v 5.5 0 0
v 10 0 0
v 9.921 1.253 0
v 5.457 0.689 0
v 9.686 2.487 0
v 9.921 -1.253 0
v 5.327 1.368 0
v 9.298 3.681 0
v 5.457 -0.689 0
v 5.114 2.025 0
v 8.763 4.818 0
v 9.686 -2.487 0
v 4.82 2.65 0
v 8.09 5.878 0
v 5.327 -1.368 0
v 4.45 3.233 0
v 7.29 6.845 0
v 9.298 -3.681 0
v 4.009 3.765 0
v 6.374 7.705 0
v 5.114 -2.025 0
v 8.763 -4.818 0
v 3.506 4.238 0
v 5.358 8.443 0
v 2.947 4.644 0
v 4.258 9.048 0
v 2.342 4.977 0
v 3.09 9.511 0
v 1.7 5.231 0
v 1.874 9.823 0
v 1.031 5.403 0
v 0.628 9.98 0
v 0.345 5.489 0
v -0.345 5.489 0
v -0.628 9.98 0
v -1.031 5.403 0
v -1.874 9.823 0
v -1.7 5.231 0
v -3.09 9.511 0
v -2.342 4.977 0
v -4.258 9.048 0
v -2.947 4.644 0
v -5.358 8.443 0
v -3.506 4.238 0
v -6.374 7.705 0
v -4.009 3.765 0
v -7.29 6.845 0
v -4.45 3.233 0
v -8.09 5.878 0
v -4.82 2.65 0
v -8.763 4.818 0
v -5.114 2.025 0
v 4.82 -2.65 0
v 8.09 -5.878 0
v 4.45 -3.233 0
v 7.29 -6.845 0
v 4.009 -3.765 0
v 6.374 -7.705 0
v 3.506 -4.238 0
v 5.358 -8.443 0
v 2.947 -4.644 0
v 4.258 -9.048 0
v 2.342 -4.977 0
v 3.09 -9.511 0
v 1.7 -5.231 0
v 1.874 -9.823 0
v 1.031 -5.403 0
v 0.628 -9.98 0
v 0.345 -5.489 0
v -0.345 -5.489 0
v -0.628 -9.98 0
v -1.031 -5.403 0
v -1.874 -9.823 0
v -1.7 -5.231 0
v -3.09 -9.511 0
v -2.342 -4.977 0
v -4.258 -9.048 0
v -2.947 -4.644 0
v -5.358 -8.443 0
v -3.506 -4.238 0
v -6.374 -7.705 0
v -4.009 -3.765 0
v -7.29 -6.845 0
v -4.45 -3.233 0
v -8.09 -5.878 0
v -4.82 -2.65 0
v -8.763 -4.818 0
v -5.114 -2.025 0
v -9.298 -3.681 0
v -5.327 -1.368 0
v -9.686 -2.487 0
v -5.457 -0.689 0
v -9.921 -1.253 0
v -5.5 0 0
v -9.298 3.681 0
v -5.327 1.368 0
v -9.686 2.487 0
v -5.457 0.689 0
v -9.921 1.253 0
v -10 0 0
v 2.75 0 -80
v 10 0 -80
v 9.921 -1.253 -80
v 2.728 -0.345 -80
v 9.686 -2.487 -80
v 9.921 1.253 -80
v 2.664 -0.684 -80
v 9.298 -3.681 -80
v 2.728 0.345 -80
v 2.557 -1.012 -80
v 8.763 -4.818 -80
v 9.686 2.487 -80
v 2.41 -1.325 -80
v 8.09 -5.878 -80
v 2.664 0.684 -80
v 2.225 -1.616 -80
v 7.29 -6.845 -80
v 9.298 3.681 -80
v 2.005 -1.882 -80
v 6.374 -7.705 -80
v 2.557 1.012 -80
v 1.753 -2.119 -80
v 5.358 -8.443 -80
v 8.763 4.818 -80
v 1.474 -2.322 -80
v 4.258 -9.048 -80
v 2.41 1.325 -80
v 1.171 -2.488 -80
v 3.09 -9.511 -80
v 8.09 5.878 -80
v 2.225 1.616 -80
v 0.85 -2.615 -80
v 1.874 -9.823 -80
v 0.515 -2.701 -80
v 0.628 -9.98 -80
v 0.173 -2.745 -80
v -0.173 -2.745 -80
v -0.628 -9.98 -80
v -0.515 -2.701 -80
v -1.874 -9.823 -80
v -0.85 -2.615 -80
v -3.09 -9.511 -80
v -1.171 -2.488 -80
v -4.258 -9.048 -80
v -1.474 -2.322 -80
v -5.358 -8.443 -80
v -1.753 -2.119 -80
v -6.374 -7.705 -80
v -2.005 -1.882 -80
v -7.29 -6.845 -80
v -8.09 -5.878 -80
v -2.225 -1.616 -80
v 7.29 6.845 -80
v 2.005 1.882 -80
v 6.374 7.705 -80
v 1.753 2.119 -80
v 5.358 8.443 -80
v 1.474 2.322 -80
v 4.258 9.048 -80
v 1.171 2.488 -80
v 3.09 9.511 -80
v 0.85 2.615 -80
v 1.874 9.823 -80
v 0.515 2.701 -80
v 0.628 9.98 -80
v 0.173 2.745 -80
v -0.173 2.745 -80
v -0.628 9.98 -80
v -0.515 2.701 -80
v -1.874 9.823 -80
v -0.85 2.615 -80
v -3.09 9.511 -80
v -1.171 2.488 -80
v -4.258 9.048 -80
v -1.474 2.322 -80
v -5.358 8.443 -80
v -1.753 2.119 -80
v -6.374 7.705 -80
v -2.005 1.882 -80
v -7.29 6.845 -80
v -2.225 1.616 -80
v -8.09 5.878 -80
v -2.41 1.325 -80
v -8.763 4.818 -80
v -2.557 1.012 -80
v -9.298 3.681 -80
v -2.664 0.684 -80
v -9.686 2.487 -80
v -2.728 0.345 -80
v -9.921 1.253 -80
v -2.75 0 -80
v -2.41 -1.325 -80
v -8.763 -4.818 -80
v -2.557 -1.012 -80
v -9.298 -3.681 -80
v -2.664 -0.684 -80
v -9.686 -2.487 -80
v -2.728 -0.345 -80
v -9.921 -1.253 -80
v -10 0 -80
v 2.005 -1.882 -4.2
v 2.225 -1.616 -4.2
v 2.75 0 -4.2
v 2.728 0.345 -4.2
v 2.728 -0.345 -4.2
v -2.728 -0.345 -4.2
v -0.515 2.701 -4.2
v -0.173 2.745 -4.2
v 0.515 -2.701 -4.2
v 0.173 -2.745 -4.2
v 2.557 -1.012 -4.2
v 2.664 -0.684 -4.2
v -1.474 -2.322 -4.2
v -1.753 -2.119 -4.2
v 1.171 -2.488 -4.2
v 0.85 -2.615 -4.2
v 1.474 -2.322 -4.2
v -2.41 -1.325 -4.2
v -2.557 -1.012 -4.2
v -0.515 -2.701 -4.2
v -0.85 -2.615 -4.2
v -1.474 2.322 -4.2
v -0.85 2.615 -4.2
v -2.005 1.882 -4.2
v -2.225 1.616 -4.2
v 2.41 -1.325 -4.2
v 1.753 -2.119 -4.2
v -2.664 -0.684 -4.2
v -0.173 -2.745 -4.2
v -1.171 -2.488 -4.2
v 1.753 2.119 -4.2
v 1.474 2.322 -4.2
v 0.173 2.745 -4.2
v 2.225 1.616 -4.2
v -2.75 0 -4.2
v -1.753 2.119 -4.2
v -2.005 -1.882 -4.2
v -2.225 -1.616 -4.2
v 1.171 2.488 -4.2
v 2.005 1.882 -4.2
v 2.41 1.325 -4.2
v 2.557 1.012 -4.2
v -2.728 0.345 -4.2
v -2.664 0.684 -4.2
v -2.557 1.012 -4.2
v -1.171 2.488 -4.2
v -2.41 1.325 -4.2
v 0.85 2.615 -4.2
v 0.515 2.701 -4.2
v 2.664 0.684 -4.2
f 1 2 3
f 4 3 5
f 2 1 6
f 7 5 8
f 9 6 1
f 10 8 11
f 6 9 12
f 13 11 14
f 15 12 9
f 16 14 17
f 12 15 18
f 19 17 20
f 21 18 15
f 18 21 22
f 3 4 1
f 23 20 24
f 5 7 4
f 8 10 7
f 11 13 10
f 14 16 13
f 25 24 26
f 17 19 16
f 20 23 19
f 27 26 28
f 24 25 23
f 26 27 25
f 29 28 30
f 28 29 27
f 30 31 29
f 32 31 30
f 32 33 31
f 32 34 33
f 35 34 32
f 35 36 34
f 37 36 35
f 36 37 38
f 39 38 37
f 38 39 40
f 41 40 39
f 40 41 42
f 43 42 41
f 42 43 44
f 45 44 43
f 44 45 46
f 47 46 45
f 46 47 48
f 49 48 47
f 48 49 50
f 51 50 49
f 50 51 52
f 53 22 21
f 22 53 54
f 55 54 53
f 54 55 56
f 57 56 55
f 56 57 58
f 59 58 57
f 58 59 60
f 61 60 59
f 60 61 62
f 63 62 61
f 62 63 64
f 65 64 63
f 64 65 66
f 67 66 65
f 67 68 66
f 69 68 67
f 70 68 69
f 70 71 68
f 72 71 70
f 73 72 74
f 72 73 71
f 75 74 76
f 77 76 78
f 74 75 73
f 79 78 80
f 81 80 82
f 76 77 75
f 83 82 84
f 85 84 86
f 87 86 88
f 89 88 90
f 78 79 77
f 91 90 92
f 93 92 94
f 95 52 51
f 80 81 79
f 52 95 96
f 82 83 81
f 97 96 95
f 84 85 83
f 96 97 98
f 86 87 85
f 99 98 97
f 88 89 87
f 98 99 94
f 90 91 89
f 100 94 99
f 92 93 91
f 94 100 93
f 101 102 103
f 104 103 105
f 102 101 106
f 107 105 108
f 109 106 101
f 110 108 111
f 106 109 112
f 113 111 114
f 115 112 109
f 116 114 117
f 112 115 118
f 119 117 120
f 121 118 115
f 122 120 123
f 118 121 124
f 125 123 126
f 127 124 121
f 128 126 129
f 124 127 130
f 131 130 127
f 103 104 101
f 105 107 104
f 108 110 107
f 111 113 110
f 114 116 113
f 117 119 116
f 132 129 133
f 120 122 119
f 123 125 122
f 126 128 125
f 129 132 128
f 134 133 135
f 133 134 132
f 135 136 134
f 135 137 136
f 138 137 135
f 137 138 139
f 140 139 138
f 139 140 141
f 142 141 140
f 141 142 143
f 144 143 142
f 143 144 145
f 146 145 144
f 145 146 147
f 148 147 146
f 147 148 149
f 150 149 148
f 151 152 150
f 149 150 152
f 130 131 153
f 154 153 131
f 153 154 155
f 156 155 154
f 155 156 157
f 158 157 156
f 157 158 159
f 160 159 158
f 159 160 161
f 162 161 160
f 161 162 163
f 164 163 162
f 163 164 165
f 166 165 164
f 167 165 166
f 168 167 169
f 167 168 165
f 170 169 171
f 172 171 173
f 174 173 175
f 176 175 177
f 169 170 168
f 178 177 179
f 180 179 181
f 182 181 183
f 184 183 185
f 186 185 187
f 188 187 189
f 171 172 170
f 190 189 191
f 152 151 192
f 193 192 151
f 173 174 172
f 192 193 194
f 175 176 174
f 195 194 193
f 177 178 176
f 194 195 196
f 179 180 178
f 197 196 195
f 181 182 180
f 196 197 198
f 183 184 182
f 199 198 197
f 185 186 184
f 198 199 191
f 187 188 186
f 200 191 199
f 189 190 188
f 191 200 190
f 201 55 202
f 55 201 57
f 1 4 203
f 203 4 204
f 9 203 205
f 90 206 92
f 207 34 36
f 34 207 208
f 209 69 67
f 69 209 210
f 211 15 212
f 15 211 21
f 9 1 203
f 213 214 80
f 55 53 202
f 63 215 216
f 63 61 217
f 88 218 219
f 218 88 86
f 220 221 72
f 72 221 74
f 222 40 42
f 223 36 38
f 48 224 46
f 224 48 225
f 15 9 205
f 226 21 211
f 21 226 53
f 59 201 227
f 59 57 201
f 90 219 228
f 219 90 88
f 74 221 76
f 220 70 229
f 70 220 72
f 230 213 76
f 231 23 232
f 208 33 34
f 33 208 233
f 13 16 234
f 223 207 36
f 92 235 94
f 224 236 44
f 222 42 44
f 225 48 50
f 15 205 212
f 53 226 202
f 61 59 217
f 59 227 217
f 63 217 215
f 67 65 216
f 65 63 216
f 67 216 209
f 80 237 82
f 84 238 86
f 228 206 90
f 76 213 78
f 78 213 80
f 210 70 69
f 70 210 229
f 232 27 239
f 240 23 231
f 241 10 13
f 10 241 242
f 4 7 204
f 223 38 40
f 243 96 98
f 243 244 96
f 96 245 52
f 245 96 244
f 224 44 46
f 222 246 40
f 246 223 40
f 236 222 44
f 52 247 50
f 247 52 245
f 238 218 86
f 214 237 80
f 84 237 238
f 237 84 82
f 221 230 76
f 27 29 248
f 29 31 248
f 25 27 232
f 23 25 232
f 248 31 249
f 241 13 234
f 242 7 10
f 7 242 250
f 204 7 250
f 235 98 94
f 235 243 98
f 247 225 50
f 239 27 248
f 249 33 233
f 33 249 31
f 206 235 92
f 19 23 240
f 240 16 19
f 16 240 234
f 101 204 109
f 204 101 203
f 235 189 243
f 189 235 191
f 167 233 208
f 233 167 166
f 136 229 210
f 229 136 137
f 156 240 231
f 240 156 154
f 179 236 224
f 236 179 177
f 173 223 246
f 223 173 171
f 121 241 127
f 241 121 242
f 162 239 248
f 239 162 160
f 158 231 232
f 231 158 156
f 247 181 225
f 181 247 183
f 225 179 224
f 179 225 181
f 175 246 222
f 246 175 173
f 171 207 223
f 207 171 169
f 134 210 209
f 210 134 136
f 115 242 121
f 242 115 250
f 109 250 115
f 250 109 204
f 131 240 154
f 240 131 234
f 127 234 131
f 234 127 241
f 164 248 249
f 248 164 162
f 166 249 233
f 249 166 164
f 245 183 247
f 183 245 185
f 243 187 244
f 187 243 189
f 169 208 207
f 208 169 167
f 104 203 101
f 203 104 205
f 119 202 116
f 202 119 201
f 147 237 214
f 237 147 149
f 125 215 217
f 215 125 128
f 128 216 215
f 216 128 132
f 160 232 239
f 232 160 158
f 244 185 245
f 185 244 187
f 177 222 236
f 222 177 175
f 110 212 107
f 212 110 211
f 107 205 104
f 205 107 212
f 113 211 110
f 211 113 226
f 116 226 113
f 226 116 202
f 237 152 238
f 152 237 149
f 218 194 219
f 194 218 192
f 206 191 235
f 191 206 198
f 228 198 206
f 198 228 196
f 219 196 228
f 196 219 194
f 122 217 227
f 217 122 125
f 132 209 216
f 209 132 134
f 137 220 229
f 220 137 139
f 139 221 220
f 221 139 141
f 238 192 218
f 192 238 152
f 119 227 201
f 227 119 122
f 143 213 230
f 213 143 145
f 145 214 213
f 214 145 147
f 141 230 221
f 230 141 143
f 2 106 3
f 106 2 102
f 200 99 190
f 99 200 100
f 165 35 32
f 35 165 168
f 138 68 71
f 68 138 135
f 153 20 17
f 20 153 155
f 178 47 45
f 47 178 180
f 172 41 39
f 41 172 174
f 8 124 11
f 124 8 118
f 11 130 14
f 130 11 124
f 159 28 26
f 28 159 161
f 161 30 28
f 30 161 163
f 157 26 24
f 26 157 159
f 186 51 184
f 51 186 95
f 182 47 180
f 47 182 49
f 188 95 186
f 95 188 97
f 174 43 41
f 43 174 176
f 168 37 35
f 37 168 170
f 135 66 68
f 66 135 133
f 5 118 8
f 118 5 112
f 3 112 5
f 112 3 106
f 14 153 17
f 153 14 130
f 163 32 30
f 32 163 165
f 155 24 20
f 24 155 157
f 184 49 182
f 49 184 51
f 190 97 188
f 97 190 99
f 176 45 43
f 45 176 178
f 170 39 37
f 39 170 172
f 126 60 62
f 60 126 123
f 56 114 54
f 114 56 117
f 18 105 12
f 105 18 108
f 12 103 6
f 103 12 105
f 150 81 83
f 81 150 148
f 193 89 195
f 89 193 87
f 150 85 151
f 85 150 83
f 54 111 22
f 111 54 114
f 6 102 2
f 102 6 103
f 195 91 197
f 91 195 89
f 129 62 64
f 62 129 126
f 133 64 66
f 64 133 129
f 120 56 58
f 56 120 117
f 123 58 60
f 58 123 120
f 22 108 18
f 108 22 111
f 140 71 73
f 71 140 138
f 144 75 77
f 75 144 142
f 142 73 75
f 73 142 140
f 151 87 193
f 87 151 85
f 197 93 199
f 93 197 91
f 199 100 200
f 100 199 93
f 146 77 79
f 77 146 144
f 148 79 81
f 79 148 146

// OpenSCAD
$fn = 50;


difference() {
	union() {
		translate(v = [0, 0, -80.0000000000]) {
			cylinder(h = 80, r = 10.0000000000);
		}
		cylinder(h = 0, r = 16.0000000000);
	}
	union() {
		translate(v = [0, 0, 0]) {
			rotate(a = [0, 0, 0]) {
				difference() {
					union() {
						#translate(v = [0, 0, -80.0000000000]) {
							cylinder(h = 80, r = 2.2500000000);
						}
						#translate(v = [0, 0, -4.2000000000]) {
							cylinder(h = 4.2000000000, r1 = 2.7500000000, r2 = 5.5000000000);
						}
						#translate(v = [0, 0, -80.0000000000]) {
							cylinder(h = 80, r = 2.7500000000);
						}
						#translate(v = [0, 0, -80.0000000000]) {
							cylinder(h = 80, r = 2.2500000000);
						}
					}
					union();
				}
			}
		}
	}
}
